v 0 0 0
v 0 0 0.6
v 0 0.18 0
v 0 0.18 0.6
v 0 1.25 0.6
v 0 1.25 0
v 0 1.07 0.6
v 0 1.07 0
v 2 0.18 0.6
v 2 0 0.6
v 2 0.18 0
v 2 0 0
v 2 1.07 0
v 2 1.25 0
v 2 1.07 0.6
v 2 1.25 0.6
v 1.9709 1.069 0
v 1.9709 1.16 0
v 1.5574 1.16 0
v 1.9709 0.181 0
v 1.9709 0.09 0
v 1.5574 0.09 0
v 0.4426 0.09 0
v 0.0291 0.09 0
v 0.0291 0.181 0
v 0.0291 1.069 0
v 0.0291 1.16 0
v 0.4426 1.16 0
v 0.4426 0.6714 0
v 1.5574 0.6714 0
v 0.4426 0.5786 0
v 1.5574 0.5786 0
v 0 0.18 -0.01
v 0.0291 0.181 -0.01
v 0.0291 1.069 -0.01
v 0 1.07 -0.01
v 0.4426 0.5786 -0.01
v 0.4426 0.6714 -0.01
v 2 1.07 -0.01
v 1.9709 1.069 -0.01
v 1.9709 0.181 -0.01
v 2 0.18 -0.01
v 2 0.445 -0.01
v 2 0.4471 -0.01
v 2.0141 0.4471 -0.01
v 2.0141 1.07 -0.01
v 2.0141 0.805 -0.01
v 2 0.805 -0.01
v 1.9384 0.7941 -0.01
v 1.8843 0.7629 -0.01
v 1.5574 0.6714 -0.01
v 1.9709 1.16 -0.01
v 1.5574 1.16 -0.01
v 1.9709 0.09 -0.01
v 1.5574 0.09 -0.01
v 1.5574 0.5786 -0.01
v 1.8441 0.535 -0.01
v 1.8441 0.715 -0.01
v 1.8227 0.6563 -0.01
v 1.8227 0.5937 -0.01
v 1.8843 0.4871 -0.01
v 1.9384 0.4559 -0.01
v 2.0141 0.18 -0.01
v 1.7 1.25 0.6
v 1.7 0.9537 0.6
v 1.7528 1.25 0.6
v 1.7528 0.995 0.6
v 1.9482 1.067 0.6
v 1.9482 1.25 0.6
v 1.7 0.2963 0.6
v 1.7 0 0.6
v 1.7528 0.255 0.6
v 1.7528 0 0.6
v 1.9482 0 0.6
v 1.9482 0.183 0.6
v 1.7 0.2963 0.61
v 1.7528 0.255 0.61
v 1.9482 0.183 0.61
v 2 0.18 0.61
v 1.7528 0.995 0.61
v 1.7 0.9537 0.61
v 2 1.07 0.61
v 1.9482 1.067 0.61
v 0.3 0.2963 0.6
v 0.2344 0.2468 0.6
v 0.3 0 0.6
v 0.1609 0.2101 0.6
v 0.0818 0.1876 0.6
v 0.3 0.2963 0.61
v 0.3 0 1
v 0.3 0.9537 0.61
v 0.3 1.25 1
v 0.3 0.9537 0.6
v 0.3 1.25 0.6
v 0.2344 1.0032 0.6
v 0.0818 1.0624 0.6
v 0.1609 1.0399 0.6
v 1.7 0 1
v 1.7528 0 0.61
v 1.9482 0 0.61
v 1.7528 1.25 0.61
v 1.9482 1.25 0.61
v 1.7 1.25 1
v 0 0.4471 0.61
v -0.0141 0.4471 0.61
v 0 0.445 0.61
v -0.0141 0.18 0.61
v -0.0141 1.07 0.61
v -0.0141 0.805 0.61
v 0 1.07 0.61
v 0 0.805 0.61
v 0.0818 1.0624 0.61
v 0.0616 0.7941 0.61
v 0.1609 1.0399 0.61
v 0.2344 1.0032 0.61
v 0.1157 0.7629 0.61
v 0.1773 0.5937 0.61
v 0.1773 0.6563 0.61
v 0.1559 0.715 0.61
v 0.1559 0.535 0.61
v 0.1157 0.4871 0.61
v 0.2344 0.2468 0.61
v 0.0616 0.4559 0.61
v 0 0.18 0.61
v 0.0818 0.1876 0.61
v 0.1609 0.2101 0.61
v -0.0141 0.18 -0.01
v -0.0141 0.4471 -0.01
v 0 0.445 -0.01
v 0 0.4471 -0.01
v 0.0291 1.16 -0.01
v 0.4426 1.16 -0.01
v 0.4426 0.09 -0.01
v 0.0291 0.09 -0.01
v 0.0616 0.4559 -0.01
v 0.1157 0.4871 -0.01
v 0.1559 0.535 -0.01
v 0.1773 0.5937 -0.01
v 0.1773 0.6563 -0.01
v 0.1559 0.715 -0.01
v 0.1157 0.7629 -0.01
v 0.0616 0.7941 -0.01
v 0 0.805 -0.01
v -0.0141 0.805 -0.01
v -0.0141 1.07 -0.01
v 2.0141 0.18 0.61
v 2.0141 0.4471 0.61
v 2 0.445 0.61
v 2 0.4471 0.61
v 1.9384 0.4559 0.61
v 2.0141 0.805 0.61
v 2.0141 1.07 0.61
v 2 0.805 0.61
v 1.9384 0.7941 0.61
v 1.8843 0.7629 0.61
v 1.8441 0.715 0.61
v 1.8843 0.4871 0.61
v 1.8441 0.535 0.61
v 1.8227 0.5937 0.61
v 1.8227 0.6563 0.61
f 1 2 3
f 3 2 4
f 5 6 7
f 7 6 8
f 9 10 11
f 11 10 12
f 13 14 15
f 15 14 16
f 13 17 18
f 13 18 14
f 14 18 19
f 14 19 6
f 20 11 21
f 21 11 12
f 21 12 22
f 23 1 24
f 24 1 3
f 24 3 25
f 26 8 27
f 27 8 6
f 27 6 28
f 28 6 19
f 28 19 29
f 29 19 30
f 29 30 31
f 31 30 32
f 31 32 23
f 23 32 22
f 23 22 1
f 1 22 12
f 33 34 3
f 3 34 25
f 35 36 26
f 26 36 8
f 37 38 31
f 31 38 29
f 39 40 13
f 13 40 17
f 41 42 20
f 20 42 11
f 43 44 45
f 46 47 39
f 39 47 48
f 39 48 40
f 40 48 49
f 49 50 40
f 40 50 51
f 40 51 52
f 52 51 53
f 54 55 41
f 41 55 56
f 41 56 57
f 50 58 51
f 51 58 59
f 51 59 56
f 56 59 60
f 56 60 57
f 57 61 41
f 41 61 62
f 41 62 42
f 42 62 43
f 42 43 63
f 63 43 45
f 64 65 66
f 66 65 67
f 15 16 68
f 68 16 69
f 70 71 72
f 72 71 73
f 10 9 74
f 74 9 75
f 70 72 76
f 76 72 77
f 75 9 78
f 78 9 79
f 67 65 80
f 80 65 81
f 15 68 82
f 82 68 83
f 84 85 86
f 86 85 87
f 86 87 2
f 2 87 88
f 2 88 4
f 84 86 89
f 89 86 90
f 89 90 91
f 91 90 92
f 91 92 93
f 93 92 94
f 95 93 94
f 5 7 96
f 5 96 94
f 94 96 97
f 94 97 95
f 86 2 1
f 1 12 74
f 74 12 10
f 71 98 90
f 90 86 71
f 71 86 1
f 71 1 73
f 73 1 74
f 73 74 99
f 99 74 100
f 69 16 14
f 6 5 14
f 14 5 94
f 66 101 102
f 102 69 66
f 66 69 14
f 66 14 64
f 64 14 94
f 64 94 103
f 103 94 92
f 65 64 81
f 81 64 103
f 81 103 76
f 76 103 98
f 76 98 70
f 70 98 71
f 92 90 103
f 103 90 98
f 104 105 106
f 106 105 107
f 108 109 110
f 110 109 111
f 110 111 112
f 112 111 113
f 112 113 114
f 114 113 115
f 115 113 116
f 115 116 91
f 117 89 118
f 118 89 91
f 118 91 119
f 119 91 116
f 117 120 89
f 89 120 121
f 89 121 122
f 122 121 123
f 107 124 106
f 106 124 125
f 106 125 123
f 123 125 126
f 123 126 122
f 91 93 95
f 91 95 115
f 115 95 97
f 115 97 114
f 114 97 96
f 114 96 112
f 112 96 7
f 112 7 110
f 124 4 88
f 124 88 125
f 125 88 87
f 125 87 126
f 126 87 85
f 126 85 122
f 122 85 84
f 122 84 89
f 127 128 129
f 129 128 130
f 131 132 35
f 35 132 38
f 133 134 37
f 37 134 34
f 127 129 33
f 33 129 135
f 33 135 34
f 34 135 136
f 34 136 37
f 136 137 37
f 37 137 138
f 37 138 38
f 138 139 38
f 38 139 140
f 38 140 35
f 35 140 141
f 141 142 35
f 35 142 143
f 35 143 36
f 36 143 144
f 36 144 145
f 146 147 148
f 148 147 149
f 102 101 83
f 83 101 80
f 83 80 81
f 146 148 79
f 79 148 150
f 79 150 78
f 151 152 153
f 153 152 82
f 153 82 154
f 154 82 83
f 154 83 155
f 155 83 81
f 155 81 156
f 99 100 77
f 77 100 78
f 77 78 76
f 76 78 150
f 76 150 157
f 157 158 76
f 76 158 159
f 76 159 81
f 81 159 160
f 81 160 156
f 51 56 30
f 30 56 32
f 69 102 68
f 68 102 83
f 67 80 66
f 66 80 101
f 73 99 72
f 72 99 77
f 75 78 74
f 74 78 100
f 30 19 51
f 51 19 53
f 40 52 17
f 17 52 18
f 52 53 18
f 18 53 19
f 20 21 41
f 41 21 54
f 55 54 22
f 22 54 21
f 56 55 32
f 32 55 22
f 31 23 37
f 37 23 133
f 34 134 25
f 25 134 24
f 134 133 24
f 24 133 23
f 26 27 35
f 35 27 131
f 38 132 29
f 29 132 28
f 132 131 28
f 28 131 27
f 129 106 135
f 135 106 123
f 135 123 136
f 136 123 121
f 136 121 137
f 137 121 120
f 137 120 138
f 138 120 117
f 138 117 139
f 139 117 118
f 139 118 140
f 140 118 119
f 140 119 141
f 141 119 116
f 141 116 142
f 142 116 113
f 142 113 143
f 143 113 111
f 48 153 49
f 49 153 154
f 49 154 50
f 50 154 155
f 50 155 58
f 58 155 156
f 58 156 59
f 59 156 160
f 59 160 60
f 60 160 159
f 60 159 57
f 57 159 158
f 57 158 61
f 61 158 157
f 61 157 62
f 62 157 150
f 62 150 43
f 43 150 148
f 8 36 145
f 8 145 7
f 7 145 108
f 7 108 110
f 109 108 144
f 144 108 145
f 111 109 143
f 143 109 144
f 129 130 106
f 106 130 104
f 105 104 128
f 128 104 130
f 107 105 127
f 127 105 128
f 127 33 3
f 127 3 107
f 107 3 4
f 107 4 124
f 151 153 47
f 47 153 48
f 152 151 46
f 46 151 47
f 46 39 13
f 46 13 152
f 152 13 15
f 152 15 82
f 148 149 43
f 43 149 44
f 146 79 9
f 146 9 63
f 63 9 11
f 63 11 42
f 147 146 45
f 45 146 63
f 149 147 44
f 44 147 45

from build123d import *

# Parameters (mm, degrees)
SKETCH1_W           = 2
SKETCH1_H           = 1.25
BOSS_EXTRUDE1_DEPTH = 0.6
SKETCH2_W           = 1.4
SKETCH2_H           = 1.25
BOSS_EXTRUDE2_DEPTH = 1
BOSS_EXTRUDE3_START = -0.01
BOSS_EXTRUDE3_DEPTH = 0.62
SKETCH4_W           = 0.19540743
SKETCH4_H           = 1.25
BOSS_EXTRUDE4_DEPTH = 0.61
SKETCH7_W           = 0.413440983
SKETCH7_H           = 1.07
BOSS_EXTRUDE5_DEPTH = 0.01
SKETCH8_R           = 0.18
CUT_EXTRUDE1_DEPTH  = 3.561737691
BOSS_EXTRUDE6_START = -0.01
SKETCH9_W           = 0.014061716
SKETCH9_H           = 0.265
SKETCH9_H_2         = 0.267076393
BOSS_EXTRUDE6_DEPTH = 0.62


with BuildPart() as part:
    # Sketch1 → Boss-Extrude1 (new body)
    with BuildSketch(Plane.XY):
        with Locations((1, 0.625)):
            Rectangle(SKETCH1_W, SKETCH1_H)
    extrude(amount=BOSS_EXTRUDE1_DEPTH)

    # Sketch2 → Boss-Extrude2 (add)
    with BuildSketch(Plane.XY):
        with Locations((1, 0.625)):
            Rectangle(SKETCH2_W, SKETCH2_H)
    extrude(amount=BOSS_EXTRUDE2_DEPTH)

    # Sketch3 → Boss-Extrude3 (add)
    with BuildSketch(Plane.XY.offset(BOSS_EXTRUDE3_START)):
        with BuildLine():
            ThreePointArc((0.445, 0.625), (0.314662518, 0.939662518), (0, 1.07))
            Line((0, 1.07), (0, 0.18))
            ThreePointArc((0, 0.18), (0.314662518, 0.310337482), (0.445, 0.625))
        make_face()
    boss_extrude3 = extrude(amount=BOSS_EXTRUDE3_DEPTH)

    # Mirror1: Boss-Extrude3 across plane
    add(boss_extrude3.mirror(Plane(origin=(1, 0, 0), x_dir=(0, 0, 1), z_dir=(1, 0, 0))))

    # Sketch4 → Boss-Extrude4 (add)
    with BuildSketch(Plane.XY):
        with Locations((1.850536551, 0.625)):
            Rectangle(SKETCH4_W, SKETCH4_H)
    extrude(amount=BOSS_EXTRUDE4_DEPTH)

    # Sketch7 → Boss-Extrude5 (add)
    with BuildSketch(Plane.XY):
        with Locations((1.764145898, 0.625)):
            Rectangle(SKETCH7_W, SKETCH7_H)
    boss_extrude5 = extrude(amount=-BOSS_EXTRUDE5_DEPTH)

    # Mirror2: Boss-Extrude5 across plane
    add(boss_extrude5.mirror(Plane(origin=(1, 0, 0), x_dir=(0, 0, 1), z_dir=(1, 0, 0))))

    # Sketch8 → Cut-Extrude1 (cut, symmetric)
    with BuildSketch(Plane.XY):
        with Locations((0, 0.625)):
            Circle(SKETCH8_R)
    cut_extrude1 = extrude(amount=CUT_EXTRUDE1_DEPTH, both=True, mode=Mode.SUBTRACT)

    # Mirror3: Cut-Extrude1 across plane
    add(cut_extrude1.mirror(Plane(origin=(1, 0, 0), x_dir=(0, 0, 1), z_dir=(1, 0, 0))), mode=Mode.SUBTRACT)

    # Sketch9 → Boss-Extrude6 (add)
    with BuildSketch(Plane.XY.offset(BOSS_EXTRUDE6_START)):
        with Locations((-0.007030858, 0.9375)):
            Rectangle(SKETCH9_W, SKETCH9_H)
        with Locations((-0.007030858, 0.313538197)):
            Rectangle(SKETCH9_W, SKETCH9_H_2)
    boss_extrude6 = extrude(amount=BOSS_EXTRUDE6_DEPTH)

    # Mirror4: Boss-Extrude6 across plane
    add(boss_extrude6.mirror(Plane(origin=(1, 0, 0), x_dir=(0, 0, 1), z_dir=(1, 0, 0))))


solid = part.part
